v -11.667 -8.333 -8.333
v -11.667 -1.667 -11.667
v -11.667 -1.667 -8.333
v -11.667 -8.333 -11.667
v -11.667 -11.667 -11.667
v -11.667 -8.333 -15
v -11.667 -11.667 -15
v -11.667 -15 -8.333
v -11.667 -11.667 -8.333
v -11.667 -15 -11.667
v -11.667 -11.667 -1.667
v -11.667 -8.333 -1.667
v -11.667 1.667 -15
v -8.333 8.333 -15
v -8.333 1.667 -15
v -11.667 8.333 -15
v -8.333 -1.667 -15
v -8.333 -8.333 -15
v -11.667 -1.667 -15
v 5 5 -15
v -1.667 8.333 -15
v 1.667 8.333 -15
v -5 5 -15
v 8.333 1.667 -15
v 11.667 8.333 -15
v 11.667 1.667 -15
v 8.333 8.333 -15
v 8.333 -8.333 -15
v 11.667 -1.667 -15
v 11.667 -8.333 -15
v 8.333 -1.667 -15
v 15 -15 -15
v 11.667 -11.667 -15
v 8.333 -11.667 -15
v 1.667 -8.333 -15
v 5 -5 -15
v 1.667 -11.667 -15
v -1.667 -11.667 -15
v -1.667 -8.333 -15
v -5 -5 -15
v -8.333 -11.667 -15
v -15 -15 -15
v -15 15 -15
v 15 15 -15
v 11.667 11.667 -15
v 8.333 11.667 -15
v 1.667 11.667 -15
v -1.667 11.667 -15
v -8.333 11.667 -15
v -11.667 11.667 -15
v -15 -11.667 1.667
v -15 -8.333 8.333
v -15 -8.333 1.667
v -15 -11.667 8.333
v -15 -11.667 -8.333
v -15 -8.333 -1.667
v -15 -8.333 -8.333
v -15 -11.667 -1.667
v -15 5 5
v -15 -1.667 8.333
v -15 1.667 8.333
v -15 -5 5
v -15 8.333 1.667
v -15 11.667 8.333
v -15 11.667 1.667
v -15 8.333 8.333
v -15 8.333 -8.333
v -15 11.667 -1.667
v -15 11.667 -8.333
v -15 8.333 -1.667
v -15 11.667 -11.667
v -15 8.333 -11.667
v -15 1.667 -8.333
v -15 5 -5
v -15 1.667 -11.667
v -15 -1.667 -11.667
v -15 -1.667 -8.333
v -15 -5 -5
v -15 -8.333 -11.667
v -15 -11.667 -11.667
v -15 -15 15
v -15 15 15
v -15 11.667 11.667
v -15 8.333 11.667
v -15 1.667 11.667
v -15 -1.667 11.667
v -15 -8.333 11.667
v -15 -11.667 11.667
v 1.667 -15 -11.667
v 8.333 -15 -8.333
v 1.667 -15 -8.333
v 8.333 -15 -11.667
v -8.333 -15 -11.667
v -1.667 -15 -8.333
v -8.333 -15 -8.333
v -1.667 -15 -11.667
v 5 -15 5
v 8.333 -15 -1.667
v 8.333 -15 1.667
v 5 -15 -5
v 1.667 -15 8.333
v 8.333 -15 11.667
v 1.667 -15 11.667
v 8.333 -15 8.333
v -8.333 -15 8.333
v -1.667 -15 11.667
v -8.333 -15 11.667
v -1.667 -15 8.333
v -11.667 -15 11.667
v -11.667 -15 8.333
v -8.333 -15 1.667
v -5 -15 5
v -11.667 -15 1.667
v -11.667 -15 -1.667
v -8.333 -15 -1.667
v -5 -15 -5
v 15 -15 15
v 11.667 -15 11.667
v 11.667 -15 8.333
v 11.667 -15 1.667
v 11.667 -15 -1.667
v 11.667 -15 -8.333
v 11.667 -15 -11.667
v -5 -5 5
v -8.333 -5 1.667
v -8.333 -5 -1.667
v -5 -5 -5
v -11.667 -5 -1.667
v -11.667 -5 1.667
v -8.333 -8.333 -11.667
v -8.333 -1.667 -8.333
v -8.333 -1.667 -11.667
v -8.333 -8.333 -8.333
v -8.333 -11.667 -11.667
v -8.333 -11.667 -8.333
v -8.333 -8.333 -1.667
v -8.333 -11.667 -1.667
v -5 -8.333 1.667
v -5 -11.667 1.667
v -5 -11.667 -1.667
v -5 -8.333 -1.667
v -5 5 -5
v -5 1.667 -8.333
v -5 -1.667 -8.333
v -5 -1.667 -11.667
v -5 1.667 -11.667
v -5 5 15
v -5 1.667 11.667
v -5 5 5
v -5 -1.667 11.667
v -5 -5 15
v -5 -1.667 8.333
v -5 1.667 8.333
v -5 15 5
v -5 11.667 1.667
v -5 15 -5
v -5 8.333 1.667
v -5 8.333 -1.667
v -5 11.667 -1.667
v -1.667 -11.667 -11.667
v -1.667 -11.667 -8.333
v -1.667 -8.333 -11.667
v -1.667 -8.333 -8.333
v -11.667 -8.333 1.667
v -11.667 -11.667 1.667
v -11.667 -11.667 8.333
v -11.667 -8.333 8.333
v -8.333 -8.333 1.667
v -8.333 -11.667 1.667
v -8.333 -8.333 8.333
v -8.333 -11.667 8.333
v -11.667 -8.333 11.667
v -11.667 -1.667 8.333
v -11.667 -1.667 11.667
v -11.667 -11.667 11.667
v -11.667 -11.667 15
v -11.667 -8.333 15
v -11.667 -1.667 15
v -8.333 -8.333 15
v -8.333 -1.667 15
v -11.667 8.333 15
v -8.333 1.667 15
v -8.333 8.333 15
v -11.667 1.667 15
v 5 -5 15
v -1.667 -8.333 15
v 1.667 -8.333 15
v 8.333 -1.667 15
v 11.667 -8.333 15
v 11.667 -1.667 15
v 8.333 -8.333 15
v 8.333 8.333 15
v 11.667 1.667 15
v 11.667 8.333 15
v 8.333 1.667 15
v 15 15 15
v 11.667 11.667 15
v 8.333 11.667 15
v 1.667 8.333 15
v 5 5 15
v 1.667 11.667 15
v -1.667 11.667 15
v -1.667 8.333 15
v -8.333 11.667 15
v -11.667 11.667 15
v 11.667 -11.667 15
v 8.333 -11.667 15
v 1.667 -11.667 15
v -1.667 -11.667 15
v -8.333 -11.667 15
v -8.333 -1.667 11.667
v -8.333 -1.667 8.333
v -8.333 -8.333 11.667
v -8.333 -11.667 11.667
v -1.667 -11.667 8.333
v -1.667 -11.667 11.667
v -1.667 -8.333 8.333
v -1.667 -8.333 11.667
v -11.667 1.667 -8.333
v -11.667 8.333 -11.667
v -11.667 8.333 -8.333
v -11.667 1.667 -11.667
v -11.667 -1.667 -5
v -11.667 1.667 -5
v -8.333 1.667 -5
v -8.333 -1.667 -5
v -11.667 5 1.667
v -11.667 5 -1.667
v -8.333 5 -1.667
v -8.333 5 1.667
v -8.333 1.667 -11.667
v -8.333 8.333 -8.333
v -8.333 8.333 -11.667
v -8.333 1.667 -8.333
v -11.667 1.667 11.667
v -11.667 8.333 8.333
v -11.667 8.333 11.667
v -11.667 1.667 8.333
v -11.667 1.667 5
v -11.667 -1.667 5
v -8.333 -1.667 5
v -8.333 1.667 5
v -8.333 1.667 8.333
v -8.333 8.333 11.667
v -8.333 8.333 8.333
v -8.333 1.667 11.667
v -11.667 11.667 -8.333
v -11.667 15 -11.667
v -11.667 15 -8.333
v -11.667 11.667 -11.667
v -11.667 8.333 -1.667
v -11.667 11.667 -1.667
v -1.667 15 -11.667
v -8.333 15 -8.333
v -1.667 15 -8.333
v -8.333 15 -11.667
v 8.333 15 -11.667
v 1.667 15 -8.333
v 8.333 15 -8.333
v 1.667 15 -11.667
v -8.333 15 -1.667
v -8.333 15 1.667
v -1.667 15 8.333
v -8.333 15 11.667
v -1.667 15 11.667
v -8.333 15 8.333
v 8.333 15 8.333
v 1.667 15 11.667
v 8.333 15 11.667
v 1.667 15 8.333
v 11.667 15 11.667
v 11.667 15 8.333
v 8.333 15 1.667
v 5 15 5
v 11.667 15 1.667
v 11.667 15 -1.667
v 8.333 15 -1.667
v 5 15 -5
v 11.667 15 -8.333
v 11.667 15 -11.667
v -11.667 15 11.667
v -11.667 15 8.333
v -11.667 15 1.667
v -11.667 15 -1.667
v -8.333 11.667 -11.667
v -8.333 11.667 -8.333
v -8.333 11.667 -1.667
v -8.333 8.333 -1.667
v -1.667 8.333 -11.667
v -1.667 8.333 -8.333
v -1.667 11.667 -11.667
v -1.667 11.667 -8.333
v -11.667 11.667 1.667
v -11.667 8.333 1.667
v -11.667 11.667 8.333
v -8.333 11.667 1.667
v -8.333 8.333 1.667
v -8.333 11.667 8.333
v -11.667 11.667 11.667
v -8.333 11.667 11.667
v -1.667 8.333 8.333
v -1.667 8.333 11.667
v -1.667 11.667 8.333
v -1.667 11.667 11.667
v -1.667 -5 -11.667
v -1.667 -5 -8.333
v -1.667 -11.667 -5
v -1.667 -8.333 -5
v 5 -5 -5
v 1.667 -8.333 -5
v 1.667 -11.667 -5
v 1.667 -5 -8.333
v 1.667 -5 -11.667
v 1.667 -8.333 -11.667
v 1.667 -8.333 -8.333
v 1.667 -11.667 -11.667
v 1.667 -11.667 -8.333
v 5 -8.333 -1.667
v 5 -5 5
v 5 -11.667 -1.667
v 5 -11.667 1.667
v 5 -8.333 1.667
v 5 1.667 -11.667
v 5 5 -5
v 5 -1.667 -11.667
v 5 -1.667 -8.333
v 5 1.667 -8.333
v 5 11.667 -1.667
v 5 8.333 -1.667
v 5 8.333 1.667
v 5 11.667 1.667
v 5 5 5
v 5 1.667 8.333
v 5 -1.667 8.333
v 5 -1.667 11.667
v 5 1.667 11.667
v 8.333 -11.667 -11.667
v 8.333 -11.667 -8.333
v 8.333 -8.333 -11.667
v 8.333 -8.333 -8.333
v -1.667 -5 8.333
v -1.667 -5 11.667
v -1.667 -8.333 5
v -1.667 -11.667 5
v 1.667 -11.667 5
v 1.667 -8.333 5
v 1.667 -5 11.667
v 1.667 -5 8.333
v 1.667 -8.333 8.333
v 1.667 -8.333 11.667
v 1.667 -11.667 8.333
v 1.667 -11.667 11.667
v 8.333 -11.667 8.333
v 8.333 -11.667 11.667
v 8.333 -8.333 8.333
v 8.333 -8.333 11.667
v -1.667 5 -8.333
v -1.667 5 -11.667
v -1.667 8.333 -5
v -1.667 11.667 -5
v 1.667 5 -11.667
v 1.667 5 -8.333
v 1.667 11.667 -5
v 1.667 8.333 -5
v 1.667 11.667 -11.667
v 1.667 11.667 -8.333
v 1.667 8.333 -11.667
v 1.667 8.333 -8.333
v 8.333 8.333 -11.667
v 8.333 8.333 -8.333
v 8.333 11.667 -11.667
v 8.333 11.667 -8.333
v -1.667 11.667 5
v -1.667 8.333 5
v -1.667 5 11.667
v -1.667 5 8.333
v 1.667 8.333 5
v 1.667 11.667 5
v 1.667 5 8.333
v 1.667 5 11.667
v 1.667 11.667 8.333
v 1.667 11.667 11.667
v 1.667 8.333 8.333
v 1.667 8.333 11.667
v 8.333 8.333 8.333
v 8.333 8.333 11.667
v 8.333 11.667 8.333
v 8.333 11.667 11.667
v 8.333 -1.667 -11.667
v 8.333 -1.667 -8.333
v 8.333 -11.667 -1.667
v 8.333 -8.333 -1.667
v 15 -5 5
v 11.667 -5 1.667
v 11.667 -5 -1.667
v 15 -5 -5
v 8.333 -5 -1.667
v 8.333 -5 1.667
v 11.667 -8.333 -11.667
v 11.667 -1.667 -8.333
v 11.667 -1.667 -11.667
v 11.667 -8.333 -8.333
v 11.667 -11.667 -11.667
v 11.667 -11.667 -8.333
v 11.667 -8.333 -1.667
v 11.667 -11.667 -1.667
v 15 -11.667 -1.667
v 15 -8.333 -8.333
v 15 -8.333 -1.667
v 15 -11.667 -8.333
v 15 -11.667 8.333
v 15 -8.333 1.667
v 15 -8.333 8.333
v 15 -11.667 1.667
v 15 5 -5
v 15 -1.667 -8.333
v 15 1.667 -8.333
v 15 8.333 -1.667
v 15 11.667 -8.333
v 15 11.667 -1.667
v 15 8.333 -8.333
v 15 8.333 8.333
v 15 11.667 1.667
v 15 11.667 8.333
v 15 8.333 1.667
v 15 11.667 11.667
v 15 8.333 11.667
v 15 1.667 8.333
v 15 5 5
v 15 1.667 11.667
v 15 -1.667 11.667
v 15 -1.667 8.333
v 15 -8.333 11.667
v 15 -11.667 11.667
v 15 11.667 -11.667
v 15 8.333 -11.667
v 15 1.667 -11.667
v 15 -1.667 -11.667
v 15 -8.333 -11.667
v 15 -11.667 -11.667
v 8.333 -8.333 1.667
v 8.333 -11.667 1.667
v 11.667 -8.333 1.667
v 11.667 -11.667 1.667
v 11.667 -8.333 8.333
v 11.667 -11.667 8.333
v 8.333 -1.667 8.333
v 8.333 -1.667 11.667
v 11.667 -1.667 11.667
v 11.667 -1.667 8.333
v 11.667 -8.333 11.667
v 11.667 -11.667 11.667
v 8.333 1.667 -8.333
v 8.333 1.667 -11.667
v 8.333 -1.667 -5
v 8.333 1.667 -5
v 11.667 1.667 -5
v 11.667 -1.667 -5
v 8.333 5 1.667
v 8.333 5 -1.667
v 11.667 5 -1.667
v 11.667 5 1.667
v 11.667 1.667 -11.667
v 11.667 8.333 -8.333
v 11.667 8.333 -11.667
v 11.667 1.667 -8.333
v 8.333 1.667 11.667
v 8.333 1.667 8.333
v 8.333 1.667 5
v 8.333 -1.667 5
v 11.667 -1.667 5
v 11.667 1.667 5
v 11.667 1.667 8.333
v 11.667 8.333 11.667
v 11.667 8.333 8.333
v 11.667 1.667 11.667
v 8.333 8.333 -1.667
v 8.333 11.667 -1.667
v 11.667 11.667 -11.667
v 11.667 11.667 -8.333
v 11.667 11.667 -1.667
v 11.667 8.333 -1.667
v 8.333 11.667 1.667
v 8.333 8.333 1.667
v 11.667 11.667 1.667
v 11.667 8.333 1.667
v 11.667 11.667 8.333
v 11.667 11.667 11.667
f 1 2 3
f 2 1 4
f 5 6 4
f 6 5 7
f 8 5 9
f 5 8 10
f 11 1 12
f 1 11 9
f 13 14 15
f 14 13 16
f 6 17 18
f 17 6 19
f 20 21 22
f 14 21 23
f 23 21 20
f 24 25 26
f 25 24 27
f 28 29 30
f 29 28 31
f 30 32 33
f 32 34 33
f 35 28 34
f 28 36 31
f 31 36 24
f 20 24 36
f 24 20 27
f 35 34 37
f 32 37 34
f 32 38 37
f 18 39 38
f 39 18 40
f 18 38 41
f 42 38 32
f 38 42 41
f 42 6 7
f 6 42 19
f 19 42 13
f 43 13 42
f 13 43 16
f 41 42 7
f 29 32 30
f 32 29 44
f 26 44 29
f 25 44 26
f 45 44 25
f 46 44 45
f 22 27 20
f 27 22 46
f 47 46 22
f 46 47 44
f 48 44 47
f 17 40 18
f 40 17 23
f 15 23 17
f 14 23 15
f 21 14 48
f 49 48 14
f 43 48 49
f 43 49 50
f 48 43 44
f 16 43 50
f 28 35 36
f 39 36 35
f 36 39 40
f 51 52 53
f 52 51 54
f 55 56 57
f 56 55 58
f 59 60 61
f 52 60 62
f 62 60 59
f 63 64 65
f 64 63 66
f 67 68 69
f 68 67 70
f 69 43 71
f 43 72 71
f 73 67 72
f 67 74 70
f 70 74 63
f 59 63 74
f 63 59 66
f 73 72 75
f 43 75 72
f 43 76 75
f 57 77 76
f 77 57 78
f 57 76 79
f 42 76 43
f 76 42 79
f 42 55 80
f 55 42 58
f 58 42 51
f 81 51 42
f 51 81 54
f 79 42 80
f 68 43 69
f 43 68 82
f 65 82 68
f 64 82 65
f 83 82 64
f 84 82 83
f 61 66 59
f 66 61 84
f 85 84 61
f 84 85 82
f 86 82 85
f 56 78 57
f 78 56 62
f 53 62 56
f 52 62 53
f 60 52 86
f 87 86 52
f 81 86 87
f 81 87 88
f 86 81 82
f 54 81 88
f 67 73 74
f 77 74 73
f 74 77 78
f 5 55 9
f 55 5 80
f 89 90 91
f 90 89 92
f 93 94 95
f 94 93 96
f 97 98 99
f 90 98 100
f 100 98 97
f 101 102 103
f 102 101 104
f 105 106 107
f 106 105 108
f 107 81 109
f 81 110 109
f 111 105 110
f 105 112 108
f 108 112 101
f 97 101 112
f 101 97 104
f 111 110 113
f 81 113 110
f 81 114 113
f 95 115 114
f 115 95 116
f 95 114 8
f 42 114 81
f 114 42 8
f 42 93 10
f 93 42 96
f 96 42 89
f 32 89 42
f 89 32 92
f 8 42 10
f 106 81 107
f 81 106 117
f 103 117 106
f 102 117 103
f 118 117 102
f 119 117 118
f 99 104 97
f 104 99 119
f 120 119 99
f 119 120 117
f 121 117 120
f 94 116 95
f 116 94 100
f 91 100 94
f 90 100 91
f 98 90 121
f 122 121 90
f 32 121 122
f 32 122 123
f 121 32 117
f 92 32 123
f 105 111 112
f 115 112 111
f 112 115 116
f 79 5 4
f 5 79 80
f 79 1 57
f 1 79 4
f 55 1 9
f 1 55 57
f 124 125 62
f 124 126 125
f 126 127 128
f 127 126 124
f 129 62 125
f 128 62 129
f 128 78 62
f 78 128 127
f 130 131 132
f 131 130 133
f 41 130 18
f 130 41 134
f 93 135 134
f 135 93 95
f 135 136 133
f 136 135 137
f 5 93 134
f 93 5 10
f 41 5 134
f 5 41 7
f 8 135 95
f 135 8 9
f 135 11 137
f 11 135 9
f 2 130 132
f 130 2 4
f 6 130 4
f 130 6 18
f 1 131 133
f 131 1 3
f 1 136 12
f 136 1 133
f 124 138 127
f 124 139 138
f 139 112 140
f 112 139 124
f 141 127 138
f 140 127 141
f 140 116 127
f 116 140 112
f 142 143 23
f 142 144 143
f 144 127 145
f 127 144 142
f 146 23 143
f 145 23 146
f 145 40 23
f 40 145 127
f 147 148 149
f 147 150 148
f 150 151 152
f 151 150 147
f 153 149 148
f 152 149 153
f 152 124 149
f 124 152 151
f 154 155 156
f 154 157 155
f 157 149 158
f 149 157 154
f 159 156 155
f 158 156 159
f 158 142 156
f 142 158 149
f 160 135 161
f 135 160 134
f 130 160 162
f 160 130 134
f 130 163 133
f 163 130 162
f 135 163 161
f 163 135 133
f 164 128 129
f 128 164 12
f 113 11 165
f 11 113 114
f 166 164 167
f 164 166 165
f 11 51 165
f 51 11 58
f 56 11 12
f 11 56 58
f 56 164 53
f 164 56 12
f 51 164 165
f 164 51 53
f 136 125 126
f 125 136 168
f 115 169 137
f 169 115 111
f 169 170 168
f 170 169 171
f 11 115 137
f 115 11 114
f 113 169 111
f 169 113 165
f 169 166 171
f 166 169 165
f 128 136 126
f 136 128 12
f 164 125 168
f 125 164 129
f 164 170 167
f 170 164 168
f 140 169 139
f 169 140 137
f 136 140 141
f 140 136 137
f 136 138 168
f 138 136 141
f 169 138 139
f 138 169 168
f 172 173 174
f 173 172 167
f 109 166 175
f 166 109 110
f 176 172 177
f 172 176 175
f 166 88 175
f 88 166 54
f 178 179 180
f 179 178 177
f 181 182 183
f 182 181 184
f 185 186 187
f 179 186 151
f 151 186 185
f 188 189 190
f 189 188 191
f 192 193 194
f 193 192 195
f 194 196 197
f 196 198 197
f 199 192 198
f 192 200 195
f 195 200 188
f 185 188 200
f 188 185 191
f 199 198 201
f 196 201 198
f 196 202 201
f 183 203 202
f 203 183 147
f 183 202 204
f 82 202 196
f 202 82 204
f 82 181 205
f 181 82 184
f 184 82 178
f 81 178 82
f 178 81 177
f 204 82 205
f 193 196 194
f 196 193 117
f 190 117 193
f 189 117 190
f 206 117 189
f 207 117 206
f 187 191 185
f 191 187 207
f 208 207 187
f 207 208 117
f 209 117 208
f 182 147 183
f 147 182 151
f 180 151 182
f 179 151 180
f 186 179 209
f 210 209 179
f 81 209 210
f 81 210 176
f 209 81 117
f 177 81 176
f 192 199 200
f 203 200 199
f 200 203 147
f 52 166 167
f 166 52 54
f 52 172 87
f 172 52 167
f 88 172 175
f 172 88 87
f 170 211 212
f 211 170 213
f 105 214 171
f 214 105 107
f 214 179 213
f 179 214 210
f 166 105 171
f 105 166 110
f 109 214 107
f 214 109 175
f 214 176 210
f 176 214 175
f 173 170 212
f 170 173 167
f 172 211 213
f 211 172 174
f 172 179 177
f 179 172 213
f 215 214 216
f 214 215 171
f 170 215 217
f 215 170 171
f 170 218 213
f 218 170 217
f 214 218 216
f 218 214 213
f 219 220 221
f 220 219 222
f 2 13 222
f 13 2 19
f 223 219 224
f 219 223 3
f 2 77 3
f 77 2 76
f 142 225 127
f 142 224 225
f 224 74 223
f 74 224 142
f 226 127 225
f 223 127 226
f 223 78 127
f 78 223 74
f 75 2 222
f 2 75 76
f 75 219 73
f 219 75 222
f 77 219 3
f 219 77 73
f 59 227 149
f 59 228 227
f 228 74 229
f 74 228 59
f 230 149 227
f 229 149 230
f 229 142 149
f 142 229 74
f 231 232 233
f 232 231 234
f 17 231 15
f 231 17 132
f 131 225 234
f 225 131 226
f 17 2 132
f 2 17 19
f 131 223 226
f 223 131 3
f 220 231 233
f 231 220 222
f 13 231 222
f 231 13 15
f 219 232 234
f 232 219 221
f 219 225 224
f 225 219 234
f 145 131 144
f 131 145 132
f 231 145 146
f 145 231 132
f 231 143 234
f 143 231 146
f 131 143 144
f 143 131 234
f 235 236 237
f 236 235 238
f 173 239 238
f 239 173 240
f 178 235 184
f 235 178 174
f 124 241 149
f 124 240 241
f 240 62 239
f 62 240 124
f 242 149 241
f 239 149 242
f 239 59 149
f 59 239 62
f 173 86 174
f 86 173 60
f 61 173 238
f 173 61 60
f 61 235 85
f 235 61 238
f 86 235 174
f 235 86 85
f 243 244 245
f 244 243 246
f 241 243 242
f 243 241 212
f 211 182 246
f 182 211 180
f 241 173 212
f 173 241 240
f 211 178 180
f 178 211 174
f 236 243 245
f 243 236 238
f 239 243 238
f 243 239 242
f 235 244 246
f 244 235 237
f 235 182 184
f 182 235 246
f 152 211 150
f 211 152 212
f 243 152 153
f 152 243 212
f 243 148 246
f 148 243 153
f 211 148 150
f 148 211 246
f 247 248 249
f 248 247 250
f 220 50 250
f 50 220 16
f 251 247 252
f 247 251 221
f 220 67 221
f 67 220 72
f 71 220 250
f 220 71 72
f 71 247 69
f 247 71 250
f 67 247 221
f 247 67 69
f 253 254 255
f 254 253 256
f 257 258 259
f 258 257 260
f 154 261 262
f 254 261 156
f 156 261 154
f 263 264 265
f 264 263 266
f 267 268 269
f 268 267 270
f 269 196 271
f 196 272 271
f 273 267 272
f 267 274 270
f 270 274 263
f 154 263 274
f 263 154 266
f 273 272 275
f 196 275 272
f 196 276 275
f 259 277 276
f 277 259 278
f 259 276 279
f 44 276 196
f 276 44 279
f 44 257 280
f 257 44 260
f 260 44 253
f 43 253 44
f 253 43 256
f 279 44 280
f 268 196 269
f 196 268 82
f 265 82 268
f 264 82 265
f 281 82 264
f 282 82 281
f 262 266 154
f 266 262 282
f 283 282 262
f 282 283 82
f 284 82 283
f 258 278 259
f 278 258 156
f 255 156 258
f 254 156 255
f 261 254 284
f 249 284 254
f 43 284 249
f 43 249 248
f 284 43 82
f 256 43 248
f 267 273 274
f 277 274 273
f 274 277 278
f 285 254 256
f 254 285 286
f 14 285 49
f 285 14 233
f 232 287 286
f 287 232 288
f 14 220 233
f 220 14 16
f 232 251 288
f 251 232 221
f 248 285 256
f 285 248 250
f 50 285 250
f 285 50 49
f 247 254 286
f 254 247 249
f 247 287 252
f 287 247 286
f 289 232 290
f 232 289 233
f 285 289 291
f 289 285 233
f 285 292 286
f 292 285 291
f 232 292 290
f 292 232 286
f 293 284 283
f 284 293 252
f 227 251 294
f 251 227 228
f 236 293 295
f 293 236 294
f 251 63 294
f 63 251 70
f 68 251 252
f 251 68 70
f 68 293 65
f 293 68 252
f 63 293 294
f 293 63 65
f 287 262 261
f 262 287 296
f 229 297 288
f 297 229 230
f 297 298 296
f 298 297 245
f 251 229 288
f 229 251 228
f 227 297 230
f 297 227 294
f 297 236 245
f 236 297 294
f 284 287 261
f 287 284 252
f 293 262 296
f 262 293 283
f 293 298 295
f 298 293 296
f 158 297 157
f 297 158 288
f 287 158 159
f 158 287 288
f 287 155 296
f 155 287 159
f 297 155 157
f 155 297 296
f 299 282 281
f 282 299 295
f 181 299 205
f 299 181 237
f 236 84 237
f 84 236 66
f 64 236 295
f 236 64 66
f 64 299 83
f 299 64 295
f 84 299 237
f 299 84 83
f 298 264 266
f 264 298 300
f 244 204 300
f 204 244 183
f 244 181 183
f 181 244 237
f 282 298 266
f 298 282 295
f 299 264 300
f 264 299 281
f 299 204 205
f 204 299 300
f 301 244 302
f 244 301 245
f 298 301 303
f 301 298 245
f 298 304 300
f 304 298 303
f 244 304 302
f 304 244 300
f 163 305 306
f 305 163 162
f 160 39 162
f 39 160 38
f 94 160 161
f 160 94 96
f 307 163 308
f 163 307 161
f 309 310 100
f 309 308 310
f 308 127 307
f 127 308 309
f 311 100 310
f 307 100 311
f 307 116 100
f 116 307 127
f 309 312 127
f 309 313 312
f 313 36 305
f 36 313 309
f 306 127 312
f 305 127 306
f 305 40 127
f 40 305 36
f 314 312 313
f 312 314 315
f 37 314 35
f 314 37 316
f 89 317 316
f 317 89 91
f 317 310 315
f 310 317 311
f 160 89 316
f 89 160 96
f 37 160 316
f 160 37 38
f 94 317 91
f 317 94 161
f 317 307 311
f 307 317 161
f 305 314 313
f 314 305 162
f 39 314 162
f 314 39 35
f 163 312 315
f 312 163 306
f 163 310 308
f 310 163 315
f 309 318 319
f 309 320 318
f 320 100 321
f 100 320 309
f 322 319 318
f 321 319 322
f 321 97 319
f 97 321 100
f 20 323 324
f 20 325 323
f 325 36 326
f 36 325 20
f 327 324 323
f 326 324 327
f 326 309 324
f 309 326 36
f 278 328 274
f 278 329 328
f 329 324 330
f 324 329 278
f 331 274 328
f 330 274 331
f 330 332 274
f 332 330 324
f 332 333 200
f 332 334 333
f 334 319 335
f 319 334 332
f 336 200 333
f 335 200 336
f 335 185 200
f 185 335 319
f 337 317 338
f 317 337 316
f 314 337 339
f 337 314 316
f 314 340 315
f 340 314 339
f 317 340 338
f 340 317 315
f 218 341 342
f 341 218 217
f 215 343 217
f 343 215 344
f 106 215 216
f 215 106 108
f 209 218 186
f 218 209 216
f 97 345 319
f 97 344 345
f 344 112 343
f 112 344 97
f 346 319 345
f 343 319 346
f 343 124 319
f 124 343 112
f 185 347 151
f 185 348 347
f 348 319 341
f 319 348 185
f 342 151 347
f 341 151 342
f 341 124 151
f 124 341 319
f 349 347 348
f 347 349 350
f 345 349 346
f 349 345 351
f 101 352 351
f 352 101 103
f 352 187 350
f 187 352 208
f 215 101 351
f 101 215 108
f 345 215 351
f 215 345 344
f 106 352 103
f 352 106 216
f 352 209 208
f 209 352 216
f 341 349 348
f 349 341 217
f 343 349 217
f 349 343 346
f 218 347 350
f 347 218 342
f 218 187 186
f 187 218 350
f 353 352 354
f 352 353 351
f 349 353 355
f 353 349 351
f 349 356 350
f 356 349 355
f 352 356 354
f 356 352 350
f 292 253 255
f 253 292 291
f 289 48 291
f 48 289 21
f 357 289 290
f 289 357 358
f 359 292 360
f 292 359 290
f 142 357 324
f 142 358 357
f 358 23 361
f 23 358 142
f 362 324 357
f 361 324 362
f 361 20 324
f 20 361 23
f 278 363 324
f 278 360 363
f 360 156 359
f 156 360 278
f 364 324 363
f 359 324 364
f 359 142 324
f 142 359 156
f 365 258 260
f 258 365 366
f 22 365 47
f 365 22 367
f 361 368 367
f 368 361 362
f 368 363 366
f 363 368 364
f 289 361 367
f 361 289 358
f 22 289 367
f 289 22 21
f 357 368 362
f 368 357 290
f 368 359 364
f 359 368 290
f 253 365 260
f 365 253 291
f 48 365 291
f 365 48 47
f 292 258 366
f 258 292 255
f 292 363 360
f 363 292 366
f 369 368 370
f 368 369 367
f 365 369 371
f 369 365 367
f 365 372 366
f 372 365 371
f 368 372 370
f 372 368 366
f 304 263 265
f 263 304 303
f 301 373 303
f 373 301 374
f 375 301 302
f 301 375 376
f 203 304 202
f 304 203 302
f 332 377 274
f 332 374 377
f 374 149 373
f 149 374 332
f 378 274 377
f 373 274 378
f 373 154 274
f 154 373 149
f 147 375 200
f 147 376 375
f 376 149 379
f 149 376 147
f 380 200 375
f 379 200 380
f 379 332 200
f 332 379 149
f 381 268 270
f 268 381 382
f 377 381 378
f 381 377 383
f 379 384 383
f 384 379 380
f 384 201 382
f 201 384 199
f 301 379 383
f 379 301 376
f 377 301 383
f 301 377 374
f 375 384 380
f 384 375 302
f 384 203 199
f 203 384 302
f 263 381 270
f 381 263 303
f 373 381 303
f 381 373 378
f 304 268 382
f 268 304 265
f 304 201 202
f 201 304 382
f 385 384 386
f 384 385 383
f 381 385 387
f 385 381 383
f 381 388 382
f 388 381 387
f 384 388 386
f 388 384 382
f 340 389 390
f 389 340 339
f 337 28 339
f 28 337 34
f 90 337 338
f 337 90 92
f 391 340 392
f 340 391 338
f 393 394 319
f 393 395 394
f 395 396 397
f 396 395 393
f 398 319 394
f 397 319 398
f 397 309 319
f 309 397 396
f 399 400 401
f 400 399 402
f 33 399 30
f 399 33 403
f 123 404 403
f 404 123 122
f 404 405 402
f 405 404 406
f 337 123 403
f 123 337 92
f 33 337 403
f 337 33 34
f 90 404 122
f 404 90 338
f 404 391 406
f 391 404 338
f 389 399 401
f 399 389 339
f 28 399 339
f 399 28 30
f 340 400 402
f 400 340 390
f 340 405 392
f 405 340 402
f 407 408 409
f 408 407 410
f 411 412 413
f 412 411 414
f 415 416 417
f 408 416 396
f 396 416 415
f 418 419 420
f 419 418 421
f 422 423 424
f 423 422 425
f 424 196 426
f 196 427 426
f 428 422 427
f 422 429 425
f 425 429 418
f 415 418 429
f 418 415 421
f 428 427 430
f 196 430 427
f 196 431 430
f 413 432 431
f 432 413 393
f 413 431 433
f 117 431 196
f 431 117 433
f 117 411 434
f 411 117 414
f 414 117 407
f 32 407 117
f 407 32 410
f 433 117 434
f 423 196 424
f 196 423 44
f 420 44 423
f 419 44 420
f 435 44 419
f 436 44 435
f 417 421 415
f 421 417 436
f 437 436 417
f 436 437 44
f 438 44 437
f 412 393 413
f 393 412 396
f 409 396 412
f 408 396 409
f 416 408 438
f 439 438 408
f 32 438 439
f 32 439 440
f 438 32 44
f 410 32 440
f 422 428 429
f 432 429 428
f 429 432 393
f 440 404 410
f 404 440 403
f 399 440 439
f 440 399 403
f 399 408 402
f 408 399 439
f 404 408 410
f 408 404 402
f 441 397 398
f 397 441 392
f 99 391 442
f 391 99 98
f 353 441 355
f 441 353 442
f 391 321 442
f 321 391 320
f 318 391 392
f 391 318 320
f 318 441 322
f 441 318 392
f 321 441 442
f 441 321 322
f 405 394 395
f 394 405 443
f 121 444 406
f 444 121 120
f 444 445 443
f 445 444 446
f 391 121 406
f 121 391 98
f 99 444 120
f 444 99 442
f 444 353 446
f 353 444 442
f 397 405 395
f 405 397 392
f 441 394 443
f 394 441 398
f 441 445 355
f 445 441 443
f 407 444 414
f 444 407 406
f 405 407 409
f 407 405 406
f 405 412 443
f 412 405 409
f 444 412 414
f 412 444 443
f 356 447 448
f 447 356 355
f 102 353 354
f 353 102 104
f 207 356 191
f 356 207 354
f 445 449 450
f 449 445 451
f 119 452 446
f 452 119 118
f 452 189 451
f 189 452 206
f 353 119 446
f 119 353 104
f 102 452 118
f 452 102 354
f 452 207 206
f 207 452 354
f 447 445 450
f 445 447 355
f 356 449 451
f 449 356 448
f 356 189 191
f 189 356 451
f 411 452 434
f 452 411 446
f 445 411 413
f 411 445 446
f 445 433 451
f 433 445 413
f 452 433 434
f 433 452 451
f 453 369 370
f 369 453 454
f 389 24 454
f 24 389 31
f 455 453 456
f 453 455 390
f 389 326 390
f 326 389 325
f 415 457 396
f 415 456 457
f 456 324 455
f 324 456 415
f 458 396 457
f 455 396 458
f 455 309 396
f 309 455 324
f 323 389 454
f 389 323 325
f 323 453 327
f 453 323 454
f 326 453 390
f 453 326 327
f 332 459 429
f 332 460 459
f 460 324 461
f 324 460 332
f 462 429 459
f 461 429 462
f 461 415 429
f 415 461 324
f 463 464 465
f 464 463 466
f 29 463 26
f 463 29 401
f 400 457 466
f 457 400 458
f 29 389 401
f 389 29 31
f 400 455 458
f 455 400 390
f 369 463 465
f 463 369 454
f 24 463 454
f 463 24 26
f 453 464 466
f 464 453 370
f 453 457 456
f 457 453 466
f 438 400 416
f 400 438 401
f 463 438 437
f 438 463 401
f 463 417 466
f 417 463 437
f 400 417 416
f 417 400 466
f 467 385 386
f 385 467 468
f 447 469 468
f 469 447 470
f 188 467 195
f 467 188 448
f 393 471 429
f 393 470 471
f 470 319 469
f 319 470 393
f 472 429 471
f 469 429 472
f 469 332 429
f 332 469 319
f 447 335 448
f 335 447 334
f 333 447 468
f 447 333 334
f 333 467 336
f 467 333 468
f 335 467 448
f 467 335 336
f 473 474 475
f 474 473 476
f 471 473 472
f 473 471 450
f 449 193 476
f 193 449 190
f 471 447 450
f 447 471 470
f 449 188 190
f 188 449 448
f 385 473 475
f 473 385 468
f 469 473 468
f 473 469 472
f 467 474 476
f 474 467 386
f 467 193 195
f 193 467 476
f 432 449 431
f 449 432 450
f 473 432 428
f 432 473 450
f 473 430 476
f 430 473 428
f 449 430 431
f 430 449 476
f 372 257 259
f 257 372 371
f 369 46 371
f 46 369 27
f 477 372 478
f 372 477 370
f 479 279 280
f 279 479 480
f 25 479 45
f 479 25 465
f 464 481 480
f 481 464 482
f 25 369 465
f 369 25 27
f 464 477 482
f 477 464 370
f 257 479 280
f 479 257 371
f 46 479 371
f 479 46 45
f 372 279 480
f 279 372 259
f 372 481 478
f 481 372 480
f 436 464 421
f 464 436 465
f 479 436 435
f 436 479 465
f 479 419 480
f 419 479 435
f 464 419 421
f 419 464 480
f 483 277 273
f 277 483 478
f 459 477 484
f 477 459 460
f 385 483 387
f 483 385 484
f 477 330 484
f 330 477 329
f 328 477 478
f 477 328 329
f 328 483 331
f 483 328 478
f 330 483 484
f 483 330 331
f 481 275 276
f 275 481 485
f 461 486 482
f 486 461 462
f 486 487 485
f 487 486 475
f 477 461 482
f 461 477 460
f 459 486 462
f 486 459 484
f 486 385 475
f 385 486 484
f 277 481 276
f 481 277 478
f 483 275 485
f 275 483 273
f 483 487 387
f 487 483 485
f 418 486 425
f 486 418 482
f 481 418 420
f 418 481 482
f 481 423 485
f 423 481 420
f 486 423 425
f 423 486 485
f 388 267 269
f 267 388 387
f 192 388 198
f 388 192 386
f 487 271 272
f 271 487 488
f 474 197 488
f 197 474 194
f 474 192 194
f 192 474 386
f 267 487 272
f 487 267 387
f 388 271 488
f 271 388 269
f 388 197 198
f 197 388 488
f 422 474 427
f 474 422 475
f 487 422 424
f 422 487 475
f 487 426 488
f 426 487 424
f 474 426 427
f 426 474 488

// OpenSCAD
// Recursive cubic pattern - Menger sponge iteration
module menger_iteration(size, level) {
    if (level <= 0) {
        cube(size, center = true);
    } else {
        new_size = size / 3;
        for (x = [-1, 0, 1]) {
            for (y = [-1, 0, 1]) {
                for (z = [-1, 0, 1]) {
                    // Skip the center and face centers
                    if ((abs(x) + abs(y) + abs(z)) > 1) {
                        translate([x * new_size, y * new_size, z * new_size])
                            menger_iteration(new_size, level - 1);
                    }
                }
            }
        }
    }
}

menger_iteration(30, 2);
